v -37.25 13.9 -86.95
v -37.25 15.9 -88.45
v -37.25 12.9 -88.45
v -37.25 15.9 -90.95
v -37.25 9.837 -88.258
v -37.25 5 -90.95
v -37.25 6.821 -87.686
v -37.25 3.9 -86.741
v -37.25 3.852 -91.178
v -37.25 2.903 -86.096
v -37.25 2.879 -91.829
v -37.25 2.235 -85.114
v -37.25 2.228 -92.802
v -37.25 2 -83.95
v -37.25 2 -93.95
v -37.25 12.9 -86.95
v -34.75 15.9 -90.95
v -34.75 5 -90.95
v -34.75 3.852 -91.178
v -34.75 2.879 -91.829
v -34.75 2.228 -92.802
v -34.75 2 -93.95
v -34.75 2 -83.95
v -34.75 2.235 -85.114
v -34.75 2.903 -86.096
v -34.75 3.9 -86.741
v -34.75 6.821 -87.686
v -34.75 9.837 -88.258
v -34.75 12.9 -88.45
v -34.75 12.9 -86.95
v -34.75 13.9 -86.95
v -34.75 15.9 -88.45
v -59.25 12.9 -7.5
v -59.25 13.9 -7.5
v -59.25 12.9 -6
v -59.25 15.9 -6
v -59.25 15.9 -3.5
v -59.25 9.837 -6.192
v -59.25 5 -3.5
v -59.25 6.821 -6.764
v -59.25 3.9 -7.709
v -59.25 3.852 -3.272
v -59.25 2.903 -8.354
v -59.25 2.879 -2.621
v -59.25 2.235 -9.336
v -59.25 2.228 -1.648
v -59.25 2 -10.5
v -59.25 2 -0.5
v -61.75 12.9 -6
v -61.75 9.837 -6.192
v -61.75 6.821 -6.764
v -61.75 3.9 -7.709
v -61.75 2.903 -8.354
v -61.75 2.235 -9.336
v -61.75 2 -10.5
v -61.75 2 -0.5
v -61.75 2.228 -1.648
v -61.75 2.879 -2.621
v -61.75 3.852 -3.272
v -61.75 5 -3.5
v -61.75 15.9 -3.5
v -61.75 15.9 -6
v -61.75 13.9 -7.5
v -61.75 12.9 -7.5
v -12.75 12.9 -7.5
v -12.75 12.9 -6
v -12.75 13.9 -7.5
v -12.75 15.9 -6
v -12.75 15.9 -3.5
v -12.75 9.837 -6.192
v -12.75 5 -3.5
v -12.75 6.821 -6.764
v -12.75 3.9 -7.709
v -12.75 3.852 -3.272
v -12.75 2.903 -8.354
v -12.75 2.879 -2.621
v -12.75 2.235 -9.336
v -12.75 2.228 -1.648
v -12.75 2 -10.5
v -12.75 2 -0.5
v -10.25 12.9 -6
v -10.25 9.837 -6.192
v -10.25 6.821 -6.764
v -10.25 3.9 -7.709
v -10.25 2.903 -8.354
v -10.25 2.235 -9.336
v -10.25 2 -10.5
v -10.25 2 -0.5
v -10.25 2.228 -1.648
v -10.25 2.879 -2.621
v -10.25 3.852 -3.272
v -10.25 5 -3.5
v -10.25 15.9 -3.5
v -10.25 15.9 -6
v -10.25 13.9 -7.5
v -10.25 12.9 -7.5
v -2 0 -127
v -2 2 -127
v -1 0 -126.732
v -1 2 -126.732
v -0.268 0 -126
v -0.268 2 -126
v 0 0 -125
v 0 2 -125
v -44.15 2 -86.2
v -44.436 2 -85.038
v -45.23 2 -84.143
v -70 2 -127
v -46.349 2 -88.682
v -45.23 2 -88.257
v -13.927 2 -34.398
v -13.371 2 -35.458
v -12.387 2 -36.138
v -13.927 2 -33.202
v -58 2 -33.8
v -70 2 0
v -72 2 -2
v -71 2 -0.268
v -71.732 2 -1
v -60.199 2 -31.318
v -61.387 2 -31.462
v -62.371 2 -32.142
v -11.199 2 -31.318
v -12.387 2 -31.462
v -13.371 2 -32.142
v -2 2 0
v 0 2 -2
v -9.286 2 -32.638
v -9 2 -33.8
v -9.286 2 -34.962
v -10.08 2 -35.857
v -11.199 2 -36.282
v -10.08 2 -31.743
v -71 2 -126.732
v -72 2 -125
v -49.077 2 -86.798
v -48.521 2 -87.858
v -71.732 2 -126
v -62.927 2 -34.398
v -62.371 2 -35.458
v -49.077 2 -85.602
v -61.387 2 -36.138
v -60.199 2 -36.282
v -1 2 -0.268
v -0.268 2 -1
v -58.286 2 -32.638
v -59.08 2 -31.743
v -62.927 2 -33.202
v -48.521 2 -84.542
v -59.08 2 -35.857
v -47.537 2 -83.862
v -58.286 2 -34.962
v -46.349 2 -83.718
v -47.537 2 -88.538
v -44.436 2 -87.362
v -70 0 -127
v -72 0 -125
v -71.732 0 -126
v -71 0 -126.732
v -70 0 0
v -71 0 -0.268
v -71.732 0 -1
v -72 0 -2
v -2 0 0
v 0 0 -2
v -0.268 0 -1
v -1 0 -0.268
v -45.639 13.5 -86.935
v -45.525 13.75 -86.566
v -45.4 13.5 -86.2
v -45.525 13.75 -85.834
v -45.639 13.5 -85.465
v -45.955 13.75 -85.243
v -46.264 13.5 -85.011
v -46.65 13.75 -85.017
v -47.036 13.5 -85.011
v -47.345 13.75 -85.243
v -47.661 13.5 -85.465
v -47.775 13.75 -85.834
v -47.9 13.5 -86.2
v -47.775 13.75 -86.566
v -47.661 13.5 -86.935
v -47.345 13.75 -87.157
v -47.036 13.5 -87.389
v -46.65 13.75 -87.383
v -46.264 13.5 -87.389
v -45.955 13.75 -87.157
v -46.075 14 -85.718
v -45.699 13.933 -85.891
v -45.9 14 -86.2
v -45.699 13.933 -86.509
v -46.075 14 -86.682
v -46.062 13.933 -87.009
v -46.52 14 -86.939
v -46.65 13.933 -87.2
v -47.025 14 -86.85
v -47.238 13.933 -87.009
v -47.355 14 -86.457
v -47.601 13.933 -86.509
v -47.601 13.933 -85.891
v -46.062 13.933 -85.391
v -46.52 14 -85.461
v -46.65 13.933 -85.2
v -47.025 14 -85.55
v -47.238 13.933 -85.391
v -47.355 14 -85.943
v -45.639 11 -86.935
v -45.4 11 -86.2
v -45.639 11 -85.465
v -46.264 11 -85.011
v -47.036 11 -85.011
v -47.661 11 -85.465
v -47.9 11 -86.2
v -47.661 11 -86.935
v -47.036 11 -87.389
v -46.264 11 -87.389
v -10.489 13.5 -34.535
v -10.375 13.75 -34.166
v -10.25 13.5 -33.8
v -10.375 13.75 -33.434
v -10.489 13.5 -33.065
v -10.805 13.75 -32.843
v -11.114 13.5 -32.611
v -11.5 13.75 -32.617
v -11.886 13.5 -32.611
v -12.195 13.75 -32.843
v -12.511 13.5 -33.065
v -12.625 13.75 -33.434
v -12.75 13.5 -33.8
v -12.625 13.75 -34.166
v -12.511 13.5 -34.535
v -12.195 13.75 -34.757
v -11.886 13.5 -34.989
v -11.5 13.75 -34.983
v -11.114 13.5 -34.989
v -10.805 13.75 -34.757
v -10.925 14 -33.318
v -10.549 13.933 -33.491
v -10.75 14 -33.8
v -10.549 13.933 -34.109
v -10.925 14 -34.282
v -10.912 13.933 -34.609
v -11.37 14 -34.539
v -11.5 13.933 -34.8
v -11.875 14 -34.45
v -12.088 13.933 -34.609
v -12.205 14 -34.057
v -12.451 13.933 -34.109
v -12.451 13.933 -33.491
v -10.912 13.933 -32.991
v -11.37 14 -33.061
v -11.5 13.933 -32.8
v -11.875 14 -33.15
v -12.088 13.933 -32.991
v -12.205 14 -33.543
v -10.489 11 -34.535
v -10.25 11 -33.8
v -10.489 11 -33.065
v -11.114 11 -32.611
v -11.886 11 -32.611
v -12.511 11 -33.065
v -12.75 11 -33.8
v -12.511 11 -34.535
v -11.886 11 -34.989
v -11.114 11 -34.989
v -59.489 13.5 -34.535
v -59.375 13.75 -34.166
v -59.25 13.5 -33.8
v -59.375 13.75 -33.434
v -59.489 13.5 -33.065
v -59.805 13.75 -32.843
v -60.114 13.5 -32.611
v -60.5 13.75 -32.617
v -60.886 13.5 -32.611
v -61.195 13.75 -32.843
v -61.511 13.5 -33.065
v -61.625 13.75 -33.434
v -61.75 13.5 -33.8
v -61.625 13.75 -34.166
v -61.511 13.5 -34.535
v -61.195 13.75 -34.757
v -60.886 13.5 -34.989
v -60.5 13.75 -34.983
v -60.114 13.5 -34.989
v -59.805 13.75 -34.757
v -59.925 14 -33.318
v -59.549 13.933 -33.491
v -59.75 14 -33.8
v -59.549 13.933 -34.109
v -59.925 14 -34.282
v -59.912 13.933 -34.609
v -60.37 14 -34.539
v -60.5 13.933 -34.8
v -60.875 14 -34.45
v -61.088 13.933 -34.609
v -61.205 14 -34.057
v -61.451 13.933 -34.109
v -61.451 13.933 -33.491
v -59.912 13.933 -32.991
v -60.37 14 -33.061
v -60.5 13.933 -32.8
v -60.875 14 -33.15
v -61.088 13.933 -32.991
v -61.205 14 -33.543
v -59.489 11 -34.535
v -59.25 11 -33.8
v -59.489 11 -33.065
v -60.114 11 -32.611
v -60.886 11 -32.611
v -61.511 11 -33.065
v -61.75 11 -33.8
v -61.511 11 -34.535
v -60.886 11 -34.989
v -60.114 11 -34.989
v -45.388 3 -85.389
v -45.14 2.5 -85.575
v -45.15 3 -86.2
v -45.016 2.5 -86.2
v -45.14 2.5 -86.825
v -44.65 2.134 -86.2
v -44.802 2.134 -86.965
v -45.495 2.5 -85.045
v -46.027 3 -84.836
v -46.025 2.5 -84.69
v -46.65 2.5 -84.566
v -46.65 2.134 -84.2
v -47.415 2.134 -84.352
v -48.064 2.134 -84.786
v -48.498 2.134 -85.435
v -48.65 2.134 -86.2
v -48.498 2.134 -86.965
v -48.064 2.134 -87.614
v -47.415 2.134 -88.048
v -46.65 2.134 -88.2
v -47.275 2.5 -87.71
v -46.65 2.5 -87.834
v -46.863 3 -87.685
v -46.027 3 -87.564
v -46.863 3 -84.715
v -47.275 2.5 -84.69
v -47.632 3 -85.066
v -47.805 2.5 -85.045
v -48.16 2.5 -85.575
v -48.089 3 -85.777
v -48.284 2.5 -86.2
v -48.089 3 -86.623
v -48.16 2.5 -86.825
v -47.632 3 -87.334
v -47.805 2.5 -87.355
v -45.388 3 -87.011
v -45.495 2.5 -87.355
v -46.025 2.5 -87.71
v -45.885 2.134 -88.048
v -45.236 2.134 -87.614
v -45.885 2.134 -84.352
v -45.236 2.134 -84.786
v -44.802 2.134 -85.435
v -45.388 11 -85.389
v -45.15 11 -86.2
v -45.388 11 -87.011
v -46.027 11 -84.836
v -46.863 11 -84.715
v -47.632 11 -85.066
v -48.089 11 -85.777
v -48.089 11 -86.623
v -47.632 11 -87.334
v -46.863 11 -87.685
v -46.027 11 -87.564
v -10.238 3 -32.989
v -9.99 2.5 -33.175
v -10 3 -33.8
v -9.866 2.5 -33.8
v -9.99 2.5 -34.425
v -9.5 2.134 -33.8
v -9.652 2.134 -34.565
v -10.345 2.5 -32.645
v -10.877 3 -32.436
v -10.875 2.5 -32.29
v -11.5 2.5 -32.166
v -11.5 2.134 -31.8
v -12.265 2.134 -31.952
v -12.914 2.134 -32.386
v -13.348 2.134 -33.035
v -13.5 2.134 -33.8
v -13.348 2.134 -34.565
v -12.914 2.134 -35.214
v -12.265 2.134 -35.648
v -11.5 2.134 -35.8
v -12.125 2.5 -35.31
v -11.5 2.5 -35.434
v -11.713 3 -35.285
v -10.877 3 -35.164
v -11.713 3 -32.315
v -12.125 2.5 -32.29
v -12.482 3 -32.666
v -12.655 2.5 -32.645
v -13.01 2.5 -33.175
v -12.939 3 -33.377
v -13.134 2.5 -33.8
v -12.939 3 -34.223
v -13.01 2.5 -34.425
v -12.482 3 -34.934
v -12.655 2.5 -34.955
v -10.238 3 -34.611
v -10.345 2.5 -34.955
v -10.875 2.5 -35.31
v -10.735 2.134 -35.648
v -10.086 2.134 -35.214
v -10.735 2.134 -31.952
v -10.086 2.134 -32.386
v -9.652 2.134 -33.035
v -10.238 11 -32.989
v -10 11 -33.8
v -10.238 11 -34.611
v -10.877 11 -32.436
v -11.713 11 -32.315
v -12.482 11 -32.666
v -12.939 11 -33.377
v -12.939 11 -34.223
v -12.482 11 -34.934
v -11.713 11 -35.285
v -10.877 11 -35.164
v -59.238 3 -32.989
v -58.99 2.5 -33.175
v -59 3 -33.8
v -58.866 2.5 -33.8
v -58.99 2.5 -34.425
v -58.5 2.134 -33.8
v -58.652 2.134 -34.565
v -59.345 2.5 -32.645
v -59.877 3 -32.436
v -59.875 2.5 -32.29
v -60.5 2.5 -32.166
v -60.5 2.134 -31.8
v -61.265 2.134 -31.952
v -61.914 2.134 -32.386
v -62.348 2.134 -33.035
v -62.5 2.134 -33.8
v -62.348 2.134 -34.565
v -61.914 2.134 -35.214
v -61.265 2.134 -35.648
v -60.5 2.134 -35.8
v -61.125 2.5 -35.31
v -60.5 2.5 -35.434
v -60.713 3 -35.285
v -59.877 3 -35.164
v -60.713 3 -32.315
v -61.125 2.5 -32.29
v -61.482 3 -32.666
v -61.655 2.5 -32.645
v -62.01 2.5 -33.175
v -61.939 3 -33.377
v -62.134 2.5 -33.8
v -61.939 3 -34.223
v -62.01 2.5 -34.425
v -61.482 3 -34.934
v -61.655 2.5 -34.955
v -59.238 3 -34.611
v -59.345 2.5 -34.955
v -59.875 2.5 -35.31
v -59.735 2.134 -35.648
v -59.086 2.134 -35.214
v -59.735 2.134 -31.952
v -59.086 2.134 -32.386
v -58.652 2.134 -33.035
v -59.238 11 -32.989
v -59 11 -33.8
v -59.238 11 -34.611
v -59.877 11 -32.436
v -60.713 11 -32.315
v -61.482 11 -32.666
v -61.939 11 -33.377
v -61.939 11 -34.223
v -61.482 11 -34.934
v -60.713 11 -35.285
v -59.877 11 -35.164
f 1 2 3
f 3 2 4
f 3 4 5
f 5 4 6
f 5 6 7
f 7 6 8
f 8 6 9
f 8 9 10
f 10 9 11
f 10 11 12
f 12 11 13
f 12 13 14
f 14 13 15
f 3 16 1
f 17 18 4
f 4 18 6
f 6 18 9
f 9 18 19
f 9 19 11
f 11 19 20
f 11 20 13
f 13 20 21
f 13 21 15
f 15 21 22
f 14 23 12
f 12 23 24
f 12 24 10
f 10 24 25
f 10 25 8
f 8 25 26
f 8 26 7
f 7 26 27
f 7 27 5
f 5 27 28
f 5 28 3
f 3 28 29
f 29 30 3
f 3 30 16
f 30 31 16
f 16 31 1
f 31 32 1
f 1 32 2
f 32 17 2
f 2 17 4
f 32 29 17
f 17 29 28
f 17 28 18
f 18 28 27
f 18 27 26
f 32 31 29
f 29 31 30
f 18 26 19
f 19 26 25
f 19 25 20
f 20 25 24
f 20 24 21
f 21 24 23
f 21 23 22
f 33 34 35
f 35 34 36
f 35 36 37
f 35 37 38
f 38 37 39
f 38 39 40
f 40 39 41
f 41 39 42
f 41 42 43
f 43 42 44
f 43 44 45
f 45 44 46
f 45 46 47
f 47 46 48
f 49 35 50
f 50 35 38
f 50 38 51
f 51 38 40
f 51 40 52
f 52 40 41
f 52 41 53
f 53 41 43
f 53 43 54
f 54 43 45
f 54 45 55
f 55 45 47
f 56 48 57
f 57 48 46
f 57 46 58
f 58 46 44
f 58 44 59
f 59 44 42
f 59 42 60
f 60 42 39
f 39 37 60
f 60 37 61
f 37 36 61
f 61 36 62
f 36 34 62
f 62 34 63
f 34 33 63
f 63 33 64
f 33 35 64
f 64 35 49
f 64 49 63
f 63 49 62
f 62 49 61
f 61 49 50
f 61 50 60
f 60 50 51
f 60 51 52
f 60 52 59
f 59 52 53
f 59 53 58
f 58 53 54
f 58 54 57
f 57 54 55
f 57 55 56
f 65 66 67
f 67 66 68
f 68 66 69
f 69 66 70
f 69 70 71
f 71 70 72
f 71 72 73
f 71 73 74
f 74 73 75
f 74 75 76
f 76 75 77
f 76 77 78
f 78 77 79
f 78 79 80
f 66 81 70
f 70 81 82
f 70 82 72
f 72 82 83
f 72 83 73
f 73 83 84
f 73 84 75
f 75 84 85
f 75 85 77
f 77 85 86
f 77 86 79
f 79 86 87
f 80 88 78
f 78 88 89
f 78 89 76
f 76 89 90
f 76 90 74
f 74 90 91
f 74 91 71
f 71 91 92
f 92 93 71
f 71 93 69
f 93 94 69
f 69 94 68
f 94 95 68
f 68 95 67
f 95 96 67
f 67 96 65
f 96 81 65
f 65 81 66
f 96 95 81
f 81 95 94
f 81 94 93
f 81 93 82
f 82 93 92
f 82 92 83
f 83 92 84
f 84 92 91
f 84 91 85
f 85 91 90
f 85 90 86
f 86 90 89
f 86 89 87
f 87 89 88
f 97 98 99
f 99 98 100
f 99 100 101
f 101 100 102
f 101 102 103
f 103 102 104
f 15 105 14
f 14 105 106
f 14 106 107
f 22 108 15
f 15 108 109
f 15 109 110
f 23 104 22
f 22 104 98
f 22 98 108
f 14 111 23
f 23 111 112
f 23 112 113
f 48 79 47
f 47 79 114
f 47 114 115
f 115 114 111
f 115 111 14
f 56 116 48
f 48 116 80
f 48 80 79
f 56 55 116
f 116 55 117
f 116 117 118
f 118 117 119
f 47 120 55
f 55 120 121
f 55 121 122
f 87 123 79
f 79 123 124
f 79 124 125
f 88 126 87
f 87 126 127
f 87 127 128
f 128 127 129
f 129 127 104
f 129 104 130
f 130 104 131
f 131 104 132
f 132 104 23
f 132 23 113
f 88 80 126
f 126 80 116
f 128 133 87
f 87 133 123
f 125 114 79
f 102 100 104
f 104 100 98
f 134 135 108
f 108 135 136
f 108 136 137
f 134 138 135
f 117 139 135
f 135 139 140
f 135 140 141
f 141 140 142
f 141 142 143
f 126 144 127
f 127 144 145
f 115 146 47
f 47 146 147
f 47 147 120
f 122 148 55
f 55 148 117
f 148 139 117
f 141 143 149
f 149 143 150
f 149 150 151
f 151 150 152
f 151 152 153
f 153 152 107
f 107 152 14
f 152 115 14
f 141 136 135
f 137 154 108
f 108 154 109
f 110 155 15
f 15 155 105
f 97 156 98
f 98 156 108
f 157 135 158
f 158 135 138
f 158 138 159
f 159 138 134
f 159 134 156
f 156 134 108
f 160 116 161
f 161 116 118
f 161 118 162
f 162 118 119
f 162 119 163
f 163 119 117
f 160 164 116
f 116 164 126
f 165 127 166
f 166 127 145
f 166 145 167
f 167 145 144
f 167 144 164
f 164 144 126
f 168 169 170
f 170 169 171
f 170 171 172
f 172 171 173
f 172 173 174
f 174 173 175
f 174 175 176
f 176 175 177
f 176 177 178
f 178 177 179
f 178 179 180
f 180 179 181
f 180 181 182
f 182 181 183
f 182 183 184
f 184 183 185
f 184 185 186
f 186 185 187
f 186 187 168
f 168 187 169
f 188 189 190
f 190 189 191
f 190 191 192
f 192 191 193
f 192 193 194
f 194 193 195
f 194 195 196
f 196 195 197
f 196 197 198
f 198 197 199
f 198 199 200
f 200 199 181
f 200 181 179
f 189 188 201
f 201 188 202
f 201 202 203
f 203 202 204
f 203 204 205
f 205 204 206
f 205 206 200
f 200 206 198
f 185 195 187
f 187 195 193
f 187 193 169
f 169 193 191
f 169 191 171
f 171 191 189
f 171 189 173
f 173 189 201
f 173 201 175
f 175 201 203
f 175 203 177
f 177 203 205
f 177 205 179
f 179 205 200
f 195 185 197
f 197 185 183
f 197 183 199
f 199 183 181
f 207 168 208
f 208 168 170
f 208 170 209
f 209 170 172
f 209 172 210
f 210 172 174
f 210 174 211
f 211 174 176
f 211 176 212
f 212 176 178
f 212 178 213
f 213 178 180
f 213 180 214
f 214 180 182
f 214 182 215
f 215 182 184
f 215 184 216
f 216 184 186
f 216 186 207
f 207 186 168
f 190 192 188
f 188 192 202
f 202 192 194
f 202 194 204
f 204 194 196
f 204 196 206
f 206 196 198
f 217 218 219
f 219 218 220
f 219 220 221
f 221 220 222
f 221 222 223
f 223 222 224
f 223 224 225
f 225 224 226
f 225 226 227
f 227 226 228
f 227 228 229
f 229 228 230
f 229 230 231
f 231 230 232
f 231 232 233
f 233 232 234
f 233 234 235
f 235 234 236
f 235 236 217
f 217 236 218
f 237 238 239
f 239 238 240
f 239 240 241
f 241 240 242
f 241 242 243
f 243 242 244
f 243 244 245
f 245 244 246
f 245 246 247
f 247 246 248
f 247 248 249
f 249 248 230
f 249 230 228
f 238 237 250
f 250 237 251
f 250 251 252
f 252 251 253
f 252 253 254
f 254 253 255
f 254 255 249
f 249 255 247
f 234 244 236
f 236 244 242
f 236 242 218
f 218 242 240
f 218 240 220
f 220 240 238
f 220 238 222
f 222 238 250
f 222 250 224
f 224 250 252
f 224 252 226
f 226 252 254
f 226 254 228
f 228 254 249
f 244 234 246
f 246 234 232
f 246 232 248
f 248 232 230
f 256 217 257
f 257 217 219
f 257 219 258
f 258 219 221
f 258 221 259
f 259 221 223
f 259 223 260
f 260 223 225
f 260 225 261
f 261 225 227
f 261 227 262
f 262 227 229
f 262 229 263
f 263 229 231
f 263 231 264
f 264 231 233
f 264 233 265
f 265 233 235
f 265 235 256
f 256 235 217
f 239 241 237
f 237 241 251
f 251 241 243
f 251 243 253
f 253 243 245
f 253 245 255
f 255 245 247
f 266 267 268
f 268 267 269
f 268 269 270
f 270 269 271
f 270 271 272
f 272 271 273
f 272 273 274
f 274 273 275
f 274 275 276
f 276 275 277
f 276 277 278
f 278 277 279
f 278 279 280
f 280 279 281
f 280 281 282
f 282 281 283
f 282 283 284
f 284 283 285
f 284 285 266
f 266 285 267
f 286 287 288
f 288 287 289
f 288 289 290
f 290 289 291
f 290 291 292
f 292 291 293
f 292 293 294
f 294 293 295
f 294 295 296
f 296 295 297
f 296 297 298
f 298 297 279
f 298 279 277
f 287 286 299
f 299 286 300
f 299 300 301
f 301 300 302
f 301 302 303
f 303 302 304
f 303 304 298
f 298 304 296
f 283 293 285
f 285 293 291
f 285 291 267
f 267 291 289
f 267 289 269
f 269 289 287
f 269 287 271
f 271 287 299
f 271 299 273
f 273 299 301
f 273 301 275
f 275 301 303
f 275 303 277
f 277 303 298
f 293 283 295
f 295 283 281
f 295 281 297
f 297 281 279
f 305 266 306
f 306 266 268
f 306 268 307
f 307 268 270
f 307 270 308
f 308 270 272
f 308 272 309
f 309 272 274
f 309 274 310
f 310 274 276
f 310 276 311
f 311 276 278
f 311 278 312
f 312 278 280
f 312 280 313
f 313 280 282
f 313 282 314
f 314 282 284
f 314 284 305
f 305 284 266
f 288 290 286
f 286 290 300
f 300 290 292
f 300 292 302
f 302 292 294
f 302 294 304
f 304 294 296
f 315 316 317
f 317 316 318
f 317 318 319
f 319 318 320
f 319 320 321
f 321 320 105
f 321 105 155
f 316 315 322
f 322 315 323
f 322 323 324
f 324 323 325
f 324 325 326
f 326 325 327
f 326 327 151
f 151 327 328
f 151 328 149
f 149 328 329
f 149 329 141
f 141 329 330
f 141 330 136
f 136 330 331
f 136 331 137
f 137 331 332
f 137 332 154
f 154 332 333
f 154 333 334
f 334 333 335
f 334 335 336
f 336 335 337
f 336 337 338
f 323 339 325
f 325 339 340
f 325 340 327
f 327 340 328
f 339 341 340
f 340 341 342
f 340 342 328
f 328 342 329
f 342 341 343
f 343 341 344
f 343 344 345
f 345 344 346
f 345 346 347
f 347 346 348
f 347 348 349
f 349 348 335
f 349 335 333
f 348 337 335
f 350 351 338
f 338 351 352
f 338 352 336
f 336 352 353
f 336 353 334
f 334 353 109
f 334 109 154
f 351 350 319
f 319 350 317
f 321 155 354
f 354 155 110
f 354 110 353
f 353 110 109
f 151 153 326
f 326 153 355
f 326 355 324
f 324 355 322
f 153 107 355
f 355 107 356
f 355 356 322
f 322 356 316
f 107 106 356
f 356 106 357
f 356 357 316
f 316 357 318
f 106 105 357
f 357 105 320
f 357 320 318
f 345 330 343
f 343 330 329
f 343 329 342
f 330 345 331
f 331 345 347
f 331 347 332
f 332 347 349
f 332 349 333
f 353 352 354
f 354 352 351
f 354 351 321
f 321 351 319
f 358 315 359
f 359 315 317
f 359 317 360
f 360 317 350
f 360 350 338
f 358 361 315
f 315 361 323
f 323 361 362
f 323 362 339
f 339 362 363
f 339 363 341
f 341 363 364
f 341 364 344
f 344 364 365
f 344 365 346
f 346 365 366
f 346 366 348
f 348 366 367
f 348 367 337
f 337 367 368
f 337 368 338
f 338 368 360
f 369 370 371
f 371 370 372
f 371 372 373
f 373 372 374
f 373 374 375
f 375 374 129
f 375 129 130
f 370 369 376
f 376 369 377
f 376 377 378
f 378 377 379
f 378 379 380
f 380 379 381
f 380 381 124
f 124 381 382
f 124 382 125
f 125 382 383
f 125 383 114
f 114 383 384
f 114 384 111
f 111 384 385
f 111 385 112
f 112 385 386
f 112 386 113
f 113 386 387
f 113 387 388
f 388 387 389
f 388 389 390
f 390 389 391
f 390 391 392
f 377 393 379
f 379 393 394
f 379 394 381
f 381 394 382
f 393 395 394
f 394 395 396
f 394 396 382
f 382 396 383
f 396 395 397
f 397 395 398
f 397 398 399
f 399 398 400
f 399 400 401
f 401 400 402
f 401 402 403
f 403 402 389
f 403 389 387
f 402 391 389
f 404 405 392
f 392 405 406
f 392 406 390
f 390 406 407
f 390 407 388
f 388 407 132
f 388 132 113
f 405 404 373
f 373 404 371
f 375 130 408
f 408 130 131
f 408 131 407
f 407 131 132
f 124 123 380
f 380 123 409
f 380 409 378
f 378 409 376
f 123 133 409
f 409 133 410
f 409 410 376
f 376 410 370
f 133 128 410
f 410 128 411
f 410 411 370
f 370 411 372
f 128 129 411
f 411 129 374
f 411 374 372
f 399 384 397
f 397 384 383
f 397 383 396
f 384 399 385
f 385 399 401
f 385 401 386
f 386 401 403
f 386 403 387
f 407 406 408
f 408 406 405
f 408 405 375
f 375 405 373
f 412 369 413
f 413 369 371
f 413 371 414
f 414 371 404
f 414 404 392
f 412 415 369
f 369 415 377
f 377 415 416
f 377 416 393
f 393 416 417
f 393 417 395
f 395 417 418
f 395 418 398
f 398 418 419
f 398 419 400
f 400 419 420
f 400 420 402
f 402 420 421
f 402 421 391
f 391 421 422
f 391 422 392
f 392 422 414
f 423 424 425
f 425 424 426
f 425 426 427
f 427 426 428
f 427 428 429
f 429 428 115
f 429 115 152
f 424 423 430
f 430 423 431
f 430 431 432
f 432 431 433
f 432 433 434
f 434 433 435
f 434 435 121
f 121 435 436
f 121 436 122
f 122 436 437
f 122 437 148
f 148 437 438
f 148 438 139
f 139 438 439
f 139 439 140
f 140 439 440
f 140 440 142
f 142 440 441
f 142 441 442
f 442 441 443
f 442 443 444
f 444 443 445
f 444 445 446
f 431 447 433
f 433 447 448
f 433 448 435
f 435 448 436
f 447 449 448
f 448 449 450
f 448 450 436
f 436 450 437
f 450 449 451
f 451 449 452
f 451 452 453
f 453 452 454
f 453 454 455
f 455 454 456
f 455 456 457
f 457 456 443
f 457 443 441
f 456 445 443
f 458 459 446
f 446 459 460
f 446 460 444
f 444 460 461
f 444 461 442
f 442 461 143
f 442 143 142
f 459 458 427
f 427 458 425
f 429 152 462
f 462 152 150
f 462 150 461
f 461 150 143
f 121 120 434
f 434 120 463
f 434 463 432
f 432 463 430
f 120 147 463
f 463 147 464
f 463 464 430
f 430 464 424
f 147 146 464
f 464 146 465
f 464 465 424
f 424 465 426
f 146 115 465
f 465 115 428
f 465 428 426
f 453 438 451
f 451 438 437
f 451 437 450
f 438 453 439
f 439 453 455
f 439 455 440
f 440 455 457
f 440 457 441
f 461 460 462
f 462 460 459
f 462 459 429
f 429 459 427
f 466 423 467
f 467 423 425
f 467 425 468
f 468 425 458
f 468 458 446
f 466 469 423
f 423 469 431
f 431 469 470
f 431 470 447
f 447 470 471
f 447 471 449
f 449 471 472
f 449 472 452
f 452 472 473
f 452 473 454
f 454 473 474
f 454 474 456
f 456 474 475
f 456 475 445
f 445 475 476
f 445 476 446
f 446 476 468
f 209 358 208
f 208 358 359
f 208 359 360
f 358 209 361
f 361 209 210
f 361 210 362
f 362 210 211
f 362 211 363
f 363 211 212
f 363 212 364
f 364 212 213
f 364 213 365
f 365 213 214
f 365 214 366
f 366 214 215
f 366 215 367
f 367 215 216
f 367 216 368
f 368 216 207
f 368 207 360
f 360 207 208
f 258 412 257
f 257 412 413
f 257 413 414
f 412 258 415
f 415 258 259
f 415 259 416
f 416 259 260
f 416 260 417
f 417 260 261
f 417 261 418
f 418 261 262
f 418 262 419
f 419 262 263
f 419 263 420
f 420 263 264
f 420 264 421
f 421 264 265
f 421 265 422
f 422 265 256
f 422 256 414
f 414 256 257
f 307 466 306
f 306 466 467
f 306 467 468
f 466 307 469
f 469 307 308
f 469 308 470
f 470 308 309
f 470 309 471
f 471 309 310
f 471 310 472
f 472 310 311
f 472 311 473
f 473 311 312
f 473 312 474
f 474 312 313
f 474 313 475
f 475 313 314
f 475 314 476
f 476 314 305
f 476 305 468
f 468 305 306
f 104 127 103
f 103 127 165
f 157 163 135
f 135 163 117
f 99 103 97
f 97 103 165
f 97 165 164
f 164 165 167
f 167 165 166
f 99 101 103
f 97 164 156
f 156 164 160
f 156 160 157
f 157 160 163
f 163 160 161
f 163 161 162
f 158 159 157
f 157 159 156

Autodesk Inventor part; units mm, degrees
ref_plane "YZ Plane" through (0, 0, 0) normal (1, 0, 0) x (0, 1, 0)
sketch "Sketch1" plane through (0, 0, 0) normal (0, 1, 0) x (-1, 0, 0)
  line L0 (0, 0) -> (72, 0)
  line L1 (72, 0) -> (72, -127)
  line L2 (72, -127) -> (0, -127)
  line L3 (0, -127) -> (0, 0)
  line L4 (57.1476, -114.4499) -> (13.5297, -114.4499)
  dimension "d0" = 72
  dimension "d1" = 127
extrude "Extrusion1" add sketch "Sketch1" along normal blind 2
sketch "Sketch2" plane through (0, 2, 0) normal (0, 1, 0) x (1, 0, 0)
  circle A0 centre (-60.5, 33.8) radius 1.5
  circle A1 centre (-11.5, 33.8) radius 1.5
  circle A2 centre (-46.65, 86.2) radius 1.5
  line L0 (-71, 6) -> (-1, 6) construction
  line L1 (-1, 6) -> (-1, 88.45) construction
  line L2 (-1, 88.45) -> (-71, 88.45) construction
  line L3 (-71, 88.45) -> (-71, 6) construction
  line L4 (-72, 0) -> (0, 0) projected
  point P0 (-36, 6)
  point P1 (-36, 0)
  dimension "d34" = 3
  dimension "d83" = 70
  dimension "d84" = 82.45
  dimension "d85" = 27.8
  dimension "d86" = 10.5
  dimension "d87" = 24.35
  dimension "d88" = 10.5
  dimension "d89" = 2.25
  dimension "d90" = 6
extrude "Extrusion8" add sketch "Sketch2" along normal blind 9
fillet "Fillet3" radius 1 3 edges at (-62, 2, -33.8) (-13, 2, -33.8) (-48.15, 2, -86.2)
sketch "Sketch8" plane through (-60.5, 11, -33.8) normal (0, 1, 0) x (1, 0, 0)
  circle A0 centre (0, 0) radius 1.25
  circle A1 centre (49, 0) radius 1.5 projected
  circle A2 centre (49, 0) radius 1.25
  circle A3 centre (13.85, 52.4) radius 1.5 projected
  circle A4 centre (13.85, 52.4) radius 1.25
  circle A5 centre (0, 0) radius 1.5 projected
  point P0 (60.5, -33.8)
  dimension "d65" = 2.5
  dimension "d66" = 2.5
  dimension "d67" = 2.5
extrude "Extrusion9" add sketch "Sketch8" along normal blind 3 contours A0 | A2 | A4
fillet "Fillet4" radius 0.5 3 edges at (-61.75, 14, -33.8) (-12.75, 14, -33.8) (-47.9, 14, -86.2)
fillet "Fillet5" radius 2 4 edges at (0, 1, 0) (-72, 1, 0) (-72, 1, -127) (0, 1, -127)
ref_plane "Work Plane1" through (-11.5, 0, -2) normal (1, 0, 0) x (0, 0, -1)
sketch "Sketch10" plane through (-11.5, 0, -2) normal (1, 0, 0) x (0, 0, -1)
  line L0 (0, 2) -> (123, 2) projected
  line L1 (-1.5, 2) -> (8.5, 2)
  arc A0 (5.7088, 3.9004) -> (8.5, 2) centre (8.5, 5) ccw
  arc A1 (-1.5, 2) -> (1.5, 5) centre (-1.5, 5) ccw
  line L2 (1.5, 5) -> (1.5, 15.9)
  line L3 (1.5, 15.9) -> (4, 15.9)
  line L4 (4, 15.9) -> (5.5, 13.9)
  line L5 (5.5, 13.9) -> (5.5, 12.9)
  line L6 (5.5, 12.9) -> (4, 12.9)
  arc A2 (4, 12.9) -> (5.7088, 3.9004) centre (28.5533, 12.9) ccw
  line L7 (-2, 2) -> (-2, 0) projected
  dimension "d92" = 10
  dimension "d96" = 1
  dimension "d98" = 3
  dimension "d100" = 2.5
  dimension "d102" = 1.5
  dimension "d103" = 3
  dimension "d117" = 10.9
  dimension "d121" = 0.5
extrude "Extrusion11" add sketch "Sketch10" along normal mid plane 2.5
ref_plane "Work Plane2" through (-36, 0, -2) normal (1, 0, 0) x (0, 0, -1)
mirror "Mirror1" about plane through (-36, 0, -2) normal (1, 0, 0) of "Extrusion11"
sketch "Sketch11" plane through (-36, 0, -2) normal (1, 0, 0) x (0, 0, -1)
  line L0 (0, 2) -> (123, 2) projected
  line L1 (81.95, 2) -> (91.95, 2)
  arc A0 (88.95, 5) -> (91.95, 2) centre (91.95, 5) ccw
  line L2 (88.95, 5) -> (88.95, 15.9)
  line L3 (88.95, 15.9) -> (86.45, 15.9)
  line L4 (86.45, 15.9) -> (84.95, 13.9)
  line L5 (84.95, 13.9) -> (84.95, 12.9)
  line L6 (84.95, 12.9) -> (86.45, 12.9)
  arc A1 (81.95, 2) -> (84.7412, 3.9004) centre (81.95, 5) ccw
  arc A2 (84.7412, 3.9004) -> (86.45, 12.9) centre (61.8967, 12.9) ccw
  line L7 (-2, 2) -> (-2, 0) projected
  point P0 (4, 12.9)
  dimension "d107" = 10
  dimension "d109" = 2.5
  dimension "d112" = 3
  dimension "d113" = 3
  dimension "d118" = 1
  dimension "d119" = 1.5
  dimension "d120" = 10.9
  dimension "d122" = 82.45
extrude "Extrusion12" add sketch "Sketch11" along normal mid plane 2.5
properties part number "Bodemplaat" material "ABS Plastic"
